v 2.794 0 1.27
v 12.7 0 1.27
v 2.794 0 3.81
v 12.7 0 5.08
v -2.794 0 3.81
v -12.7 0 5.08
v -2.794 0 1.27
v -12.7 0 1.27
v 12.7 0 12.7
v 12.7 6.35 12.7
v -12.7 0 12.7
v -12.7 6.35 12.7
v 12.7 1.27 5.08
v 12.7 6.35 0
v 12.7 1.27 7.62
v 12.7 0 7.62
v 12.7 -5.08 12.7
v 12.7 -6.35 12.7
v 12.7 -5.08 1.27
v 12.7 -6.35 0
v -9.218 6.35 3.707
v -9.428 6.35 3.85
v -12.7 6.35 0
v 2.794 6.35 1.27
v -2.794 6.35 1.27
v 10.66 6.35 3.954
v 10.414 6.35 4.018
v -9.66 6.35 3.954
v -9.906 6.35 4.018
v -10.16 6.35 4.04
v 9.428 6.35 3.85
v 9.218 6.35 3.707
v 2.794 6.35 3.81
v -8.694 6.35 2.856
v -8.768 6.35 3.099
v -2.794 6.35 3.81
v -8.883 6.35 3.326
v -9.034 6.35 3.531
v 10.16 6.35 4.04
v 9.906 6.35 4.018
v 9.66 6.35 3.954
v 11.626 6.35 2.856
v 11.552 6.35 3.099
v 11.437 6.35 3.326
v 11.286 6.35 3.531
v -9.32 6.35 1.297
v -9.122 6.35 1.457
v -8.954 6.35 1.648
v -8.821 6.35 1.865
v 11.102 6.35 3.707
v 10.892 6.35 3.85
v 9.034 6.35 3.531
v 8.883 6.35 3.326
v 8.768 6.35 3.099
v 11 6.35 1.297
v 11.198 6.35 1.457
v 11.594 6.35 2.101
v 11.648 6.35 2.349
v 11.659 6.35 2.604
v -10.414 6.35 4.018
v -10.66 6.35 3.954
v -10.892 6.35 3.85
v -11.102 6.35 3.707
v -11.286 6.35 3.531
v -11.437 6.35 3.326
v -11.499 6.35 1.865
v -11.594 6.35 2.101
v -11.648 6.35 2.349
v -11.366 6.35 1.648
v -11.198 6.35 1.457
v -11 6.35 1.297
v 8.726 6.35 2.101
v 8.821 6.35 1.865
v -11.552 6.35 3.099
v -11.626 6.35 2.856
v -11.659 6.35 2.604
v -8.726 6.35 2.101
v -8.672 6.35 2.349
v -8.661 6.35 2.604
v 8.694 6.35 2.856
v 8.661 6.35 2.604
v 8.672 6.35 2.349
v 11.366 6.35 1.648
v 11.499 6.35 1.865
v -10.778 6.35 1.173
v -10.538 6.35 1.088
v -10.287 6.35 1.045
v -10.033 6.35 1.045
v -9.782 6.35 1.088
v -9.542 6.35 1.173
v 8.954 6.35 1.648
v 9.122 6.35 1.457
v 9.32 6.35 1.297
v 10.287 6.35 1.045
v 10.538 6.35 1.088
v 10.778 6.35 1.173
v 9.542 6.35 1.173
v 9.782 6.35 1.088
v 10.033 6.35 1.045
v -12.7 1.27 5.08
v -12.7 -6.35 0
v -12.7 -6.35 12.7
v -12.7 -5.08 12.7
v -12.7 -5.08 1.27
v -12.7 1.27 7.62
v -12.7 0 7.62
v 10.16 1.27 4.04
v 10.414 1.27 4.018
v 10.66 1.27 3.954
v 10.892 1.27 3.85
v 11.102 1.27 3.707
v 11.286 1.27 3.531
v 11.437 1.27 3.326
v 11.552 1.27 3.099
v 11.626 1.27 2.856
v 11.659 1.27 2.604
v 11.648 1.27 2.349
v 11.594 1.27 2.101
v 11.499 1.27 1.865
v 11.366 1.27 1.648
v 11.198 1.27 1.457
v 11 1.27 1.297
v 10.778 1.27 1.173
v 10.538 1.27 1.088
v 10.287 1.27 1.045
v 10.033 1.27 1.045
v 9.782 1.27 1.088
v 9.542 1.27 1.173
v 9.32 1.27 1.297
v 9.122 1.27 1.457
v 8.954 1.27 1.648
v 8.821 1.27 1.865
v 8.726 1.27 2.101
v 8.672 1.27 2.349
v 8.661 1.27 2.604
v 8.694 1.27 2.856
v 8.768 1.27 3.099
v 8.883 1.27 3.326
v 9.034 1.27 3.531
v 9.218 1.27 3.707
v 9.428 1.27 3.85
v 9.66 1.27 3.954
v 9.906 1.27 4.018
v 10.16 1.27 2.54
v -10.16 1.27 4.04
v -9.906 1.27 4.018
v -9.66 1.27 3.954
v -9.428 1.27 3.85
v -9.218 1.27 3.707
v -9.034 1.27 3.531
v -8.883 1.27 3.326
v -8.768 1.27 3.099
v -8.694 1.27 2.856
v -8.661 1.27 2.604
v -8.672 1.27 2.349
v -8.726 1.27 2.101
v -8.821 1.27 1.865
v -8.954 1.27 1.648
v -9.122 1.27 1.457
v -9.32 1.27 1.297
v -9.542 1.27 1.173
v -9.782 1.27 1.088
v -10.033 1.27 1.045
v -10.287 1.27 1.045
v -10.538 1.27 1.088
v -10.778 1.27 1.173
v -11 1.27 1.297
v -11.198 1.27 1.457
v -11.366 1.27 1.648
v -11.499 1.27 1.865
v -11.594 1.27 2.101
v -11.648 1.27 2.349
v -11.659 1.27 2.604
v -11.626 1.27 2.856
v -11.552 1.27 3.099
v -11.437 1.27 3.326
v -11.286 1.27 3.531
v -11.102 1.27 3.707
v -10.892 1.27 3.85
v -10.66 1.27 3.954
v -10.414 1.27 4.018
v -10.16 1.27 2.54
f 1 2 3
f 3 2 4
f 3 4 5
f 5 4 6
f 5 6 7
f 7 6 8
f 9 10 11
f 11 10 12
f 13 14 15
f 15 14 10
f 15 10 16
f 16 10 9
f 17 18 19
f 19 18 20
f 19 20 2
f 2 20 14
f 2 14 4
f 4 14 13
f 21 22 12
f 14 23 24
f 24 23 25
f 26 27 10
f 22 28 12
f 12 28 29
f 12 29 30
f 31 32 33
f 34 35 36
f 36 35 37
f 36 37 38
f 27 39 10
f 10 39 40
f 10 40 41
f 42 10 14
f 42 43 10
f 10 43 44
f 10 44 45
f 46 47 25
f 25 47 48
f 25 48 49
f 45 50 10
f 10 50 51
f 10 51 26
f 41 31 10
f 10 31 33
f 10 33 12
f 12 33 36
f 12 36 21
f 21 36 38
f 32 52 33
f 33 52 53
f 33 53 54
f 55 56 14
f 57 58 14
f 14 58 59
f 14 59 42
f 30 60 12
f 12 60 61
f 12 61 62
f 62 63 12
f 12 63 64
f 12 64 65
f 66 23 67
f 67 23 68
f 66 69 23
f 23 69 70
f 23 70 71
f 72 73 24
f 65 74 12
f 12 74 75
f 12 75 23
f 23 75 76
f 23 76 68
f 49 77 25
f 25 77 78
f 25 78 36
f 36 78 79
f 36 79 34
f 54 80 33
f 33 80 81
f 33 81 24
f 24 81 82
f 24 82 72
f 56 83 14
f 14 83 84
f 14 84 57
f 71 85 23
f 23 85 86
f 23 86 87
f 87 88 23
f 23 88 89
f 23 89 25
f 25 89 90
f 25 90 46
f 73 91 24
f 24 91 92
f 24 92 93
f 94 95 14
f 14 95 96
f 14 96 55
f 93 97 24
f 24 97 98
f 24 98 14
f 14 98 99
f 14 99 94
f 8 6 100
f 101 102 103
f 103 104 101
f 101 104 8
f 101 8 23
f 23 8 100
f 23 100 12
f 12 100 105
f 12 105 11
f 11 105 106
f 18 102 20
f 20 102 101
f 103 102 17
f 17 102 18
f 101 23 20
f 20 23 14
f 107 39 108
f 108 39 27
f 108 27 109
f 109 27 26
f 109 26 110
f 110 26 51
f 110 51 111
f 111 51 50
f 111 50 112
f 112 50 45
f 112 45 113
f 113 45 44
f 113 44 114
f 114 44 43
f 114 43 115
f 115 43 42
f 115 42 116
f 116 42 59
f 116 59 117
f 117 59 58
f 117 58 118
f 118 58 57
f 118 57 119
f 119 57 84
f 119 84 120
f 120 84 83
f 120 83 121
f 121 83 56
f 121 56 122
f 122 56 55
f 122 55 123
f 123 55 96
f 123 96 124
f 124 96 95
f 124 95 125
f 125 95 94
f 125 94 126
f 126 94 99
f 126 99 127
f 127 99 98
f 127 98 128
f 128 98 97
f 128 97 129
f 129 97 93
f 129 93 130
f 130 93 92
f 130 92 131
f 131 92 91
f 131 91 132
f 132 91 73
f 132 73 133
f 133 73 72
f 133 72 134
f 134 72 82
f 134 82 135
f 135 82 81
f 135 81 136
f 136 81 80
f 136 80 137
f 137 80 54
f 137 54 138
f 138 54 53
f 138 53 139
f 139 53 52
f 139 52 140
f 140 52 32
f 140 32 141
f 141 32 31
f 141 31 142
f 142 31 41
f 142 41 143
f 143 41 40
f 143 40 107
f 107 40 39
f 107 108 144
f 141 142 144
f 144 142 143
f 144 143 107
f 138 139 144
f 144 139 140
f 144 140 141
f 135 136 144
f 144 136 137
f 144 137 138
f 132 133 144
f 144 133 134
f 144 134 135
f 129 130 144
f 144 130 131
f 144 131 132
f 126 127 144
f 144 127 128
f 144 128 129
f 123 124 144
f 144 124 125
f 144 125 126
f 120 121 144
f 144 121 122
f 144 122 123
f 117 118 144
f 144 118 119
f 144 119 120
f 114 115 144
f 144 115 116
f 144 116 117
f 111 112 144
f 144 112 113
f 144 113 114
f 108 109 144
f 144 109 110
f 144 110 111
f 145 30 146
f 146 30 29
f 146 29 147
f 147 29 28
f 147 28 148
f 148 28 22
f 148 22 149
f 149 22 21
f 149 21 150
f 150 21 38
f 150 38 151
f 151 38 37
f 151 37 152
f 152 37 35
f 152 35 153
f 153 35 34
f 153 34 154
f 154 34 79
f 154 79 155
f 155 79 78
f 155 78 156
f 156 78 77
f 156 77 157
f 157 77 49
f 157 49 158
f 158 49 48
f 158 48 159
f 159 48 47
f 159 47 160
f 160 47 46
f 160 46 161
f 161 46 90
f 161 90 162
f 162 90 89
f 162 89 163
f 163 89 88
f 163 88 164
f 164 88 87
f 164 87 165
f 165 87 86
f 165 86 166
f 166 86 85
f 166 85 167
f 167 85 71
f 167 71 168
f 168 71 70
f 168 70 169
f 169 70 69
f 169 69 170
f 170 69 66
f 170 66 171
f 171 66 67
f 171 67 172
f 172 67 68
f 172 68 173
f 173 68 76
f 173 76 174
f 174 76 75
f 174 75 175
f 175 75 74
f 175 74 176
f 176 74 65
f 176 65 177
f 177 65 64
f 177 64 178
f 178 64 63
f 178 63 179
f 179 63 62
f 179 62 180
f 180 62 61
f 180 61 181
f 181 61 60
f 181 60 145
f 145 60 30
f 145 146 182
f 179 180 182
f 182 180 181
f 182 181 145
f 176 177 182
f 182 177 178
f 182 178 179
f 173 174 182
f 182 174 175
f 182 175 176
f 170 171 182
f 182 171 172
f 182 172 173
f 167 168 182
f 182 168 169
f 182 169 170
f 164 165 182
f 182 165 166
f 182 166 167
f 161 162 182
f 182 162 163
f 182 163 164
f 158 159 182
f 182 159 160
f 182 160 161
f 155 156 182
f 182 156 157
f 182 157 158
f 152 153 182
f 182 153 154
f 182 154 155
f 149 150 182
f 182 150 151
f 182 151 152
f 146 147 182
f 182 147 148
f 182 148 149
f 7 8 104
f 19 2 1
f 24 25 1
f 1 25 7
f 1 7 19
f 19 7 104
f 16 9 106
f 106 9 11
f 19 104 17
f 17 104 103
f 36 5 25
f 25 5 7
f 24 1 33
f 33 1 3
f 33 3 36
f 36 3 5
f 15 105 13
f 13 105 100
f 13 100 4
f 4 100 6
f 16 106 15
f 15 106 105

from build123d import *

# Parameters (mm, degrees)
SKETCH1_W           = 25.4
SKETCH1_H           = 12.7
BOSS_EXTRUDE1_DEPTH = 12.7
SKETCH2_R           = 1.5
CUT_EXTRUDE1_DEPTH  = 5.08
SKETCH4_W           = 11.43
SKETCH4_H           = 5.08
CUT_EXTRUDE3_DEPTH  = 27.432
SKETCH6_W           = 5.588
SKETCH6_H           = 2.54
CUT_EXTRUDE5_DEPTH  = 9.652
SKETCH7_W           = 2.54
SKETCH7_H           = 1.27
CUT_EXTRUDE6_DEPTH  = 26.924


with BuildPart() as part:
    # Sketch1 → Boss-Extrude1 (new body)
    with BuildSketch(Plane.XY):
        Rectangle(SKETCH1_W, SKETCH1_H)
    extrude(amount=BOSS_EXTRUDE1_DEPTH)

    # Sketch2 → Cut-Extrude1 (cut)
    with BuildSketch(Plane(origin=(0, 6.35, 0), x_dir=(1, 0, 0), z_dir=(0, 1, 0))):
        with Locations(Location((-10.16, -2.54, 0), (0, 0, 270))):
            Circle(SKETCH2_R)
        with Locations(Location((10.16, -2.54, 0), (0, 0, 270))):
            Circle(SKETCH2_R)
    extrude(amount=-CUT_EXTRUDE1_DEPTH, mode=Mode.SUBTRACT)

    # Sketch4 → Cut-Extrude3 (cut)
    with BuildSketch(Plane(origin=(12.7, 0, 0), x_dir=(0, 0, -1), z_dir=(1, 0, 0))):
        with Locations((-6.985, -2.54)):
            Rectangle(SKETCH4_W, SKETCH4_H)
    extrude(amount=-CUT_EXTRUDE3_DEPTH, mode=Mode.SUBTRACT)

    # Sketch6 → Cut-Extrude5 (cut)
    with BuildSketch(Plane(origin=(0, 6.35, 0), x_dir=(1, 0, 0), z_dir=(0, 1, 0))):
        with Locations((0, -2.54)):
            Rectangle(SKETCH6_W, SKETCH6_H)
    extrude(amount=-CUT_EXTRUDE5_DEPTH, mode=Mode.SUBTRACT)

    # Sketch7 → Cut-Extrude6 (cut)
    with BuildSketch(Plane(origin=(12.7, 0, 0), x_dir=(0, 0, -1), z_dir=(1, 0, 0))):
        with Locations((-6.35, 0.635)):
            Rectangle(SKETCH7_W, SKETCH7_H)
    extrude(amount=-CUT_EXTRUDE6_DEPTH, mode=Mode.SUBTRACT)


solid = part.part
